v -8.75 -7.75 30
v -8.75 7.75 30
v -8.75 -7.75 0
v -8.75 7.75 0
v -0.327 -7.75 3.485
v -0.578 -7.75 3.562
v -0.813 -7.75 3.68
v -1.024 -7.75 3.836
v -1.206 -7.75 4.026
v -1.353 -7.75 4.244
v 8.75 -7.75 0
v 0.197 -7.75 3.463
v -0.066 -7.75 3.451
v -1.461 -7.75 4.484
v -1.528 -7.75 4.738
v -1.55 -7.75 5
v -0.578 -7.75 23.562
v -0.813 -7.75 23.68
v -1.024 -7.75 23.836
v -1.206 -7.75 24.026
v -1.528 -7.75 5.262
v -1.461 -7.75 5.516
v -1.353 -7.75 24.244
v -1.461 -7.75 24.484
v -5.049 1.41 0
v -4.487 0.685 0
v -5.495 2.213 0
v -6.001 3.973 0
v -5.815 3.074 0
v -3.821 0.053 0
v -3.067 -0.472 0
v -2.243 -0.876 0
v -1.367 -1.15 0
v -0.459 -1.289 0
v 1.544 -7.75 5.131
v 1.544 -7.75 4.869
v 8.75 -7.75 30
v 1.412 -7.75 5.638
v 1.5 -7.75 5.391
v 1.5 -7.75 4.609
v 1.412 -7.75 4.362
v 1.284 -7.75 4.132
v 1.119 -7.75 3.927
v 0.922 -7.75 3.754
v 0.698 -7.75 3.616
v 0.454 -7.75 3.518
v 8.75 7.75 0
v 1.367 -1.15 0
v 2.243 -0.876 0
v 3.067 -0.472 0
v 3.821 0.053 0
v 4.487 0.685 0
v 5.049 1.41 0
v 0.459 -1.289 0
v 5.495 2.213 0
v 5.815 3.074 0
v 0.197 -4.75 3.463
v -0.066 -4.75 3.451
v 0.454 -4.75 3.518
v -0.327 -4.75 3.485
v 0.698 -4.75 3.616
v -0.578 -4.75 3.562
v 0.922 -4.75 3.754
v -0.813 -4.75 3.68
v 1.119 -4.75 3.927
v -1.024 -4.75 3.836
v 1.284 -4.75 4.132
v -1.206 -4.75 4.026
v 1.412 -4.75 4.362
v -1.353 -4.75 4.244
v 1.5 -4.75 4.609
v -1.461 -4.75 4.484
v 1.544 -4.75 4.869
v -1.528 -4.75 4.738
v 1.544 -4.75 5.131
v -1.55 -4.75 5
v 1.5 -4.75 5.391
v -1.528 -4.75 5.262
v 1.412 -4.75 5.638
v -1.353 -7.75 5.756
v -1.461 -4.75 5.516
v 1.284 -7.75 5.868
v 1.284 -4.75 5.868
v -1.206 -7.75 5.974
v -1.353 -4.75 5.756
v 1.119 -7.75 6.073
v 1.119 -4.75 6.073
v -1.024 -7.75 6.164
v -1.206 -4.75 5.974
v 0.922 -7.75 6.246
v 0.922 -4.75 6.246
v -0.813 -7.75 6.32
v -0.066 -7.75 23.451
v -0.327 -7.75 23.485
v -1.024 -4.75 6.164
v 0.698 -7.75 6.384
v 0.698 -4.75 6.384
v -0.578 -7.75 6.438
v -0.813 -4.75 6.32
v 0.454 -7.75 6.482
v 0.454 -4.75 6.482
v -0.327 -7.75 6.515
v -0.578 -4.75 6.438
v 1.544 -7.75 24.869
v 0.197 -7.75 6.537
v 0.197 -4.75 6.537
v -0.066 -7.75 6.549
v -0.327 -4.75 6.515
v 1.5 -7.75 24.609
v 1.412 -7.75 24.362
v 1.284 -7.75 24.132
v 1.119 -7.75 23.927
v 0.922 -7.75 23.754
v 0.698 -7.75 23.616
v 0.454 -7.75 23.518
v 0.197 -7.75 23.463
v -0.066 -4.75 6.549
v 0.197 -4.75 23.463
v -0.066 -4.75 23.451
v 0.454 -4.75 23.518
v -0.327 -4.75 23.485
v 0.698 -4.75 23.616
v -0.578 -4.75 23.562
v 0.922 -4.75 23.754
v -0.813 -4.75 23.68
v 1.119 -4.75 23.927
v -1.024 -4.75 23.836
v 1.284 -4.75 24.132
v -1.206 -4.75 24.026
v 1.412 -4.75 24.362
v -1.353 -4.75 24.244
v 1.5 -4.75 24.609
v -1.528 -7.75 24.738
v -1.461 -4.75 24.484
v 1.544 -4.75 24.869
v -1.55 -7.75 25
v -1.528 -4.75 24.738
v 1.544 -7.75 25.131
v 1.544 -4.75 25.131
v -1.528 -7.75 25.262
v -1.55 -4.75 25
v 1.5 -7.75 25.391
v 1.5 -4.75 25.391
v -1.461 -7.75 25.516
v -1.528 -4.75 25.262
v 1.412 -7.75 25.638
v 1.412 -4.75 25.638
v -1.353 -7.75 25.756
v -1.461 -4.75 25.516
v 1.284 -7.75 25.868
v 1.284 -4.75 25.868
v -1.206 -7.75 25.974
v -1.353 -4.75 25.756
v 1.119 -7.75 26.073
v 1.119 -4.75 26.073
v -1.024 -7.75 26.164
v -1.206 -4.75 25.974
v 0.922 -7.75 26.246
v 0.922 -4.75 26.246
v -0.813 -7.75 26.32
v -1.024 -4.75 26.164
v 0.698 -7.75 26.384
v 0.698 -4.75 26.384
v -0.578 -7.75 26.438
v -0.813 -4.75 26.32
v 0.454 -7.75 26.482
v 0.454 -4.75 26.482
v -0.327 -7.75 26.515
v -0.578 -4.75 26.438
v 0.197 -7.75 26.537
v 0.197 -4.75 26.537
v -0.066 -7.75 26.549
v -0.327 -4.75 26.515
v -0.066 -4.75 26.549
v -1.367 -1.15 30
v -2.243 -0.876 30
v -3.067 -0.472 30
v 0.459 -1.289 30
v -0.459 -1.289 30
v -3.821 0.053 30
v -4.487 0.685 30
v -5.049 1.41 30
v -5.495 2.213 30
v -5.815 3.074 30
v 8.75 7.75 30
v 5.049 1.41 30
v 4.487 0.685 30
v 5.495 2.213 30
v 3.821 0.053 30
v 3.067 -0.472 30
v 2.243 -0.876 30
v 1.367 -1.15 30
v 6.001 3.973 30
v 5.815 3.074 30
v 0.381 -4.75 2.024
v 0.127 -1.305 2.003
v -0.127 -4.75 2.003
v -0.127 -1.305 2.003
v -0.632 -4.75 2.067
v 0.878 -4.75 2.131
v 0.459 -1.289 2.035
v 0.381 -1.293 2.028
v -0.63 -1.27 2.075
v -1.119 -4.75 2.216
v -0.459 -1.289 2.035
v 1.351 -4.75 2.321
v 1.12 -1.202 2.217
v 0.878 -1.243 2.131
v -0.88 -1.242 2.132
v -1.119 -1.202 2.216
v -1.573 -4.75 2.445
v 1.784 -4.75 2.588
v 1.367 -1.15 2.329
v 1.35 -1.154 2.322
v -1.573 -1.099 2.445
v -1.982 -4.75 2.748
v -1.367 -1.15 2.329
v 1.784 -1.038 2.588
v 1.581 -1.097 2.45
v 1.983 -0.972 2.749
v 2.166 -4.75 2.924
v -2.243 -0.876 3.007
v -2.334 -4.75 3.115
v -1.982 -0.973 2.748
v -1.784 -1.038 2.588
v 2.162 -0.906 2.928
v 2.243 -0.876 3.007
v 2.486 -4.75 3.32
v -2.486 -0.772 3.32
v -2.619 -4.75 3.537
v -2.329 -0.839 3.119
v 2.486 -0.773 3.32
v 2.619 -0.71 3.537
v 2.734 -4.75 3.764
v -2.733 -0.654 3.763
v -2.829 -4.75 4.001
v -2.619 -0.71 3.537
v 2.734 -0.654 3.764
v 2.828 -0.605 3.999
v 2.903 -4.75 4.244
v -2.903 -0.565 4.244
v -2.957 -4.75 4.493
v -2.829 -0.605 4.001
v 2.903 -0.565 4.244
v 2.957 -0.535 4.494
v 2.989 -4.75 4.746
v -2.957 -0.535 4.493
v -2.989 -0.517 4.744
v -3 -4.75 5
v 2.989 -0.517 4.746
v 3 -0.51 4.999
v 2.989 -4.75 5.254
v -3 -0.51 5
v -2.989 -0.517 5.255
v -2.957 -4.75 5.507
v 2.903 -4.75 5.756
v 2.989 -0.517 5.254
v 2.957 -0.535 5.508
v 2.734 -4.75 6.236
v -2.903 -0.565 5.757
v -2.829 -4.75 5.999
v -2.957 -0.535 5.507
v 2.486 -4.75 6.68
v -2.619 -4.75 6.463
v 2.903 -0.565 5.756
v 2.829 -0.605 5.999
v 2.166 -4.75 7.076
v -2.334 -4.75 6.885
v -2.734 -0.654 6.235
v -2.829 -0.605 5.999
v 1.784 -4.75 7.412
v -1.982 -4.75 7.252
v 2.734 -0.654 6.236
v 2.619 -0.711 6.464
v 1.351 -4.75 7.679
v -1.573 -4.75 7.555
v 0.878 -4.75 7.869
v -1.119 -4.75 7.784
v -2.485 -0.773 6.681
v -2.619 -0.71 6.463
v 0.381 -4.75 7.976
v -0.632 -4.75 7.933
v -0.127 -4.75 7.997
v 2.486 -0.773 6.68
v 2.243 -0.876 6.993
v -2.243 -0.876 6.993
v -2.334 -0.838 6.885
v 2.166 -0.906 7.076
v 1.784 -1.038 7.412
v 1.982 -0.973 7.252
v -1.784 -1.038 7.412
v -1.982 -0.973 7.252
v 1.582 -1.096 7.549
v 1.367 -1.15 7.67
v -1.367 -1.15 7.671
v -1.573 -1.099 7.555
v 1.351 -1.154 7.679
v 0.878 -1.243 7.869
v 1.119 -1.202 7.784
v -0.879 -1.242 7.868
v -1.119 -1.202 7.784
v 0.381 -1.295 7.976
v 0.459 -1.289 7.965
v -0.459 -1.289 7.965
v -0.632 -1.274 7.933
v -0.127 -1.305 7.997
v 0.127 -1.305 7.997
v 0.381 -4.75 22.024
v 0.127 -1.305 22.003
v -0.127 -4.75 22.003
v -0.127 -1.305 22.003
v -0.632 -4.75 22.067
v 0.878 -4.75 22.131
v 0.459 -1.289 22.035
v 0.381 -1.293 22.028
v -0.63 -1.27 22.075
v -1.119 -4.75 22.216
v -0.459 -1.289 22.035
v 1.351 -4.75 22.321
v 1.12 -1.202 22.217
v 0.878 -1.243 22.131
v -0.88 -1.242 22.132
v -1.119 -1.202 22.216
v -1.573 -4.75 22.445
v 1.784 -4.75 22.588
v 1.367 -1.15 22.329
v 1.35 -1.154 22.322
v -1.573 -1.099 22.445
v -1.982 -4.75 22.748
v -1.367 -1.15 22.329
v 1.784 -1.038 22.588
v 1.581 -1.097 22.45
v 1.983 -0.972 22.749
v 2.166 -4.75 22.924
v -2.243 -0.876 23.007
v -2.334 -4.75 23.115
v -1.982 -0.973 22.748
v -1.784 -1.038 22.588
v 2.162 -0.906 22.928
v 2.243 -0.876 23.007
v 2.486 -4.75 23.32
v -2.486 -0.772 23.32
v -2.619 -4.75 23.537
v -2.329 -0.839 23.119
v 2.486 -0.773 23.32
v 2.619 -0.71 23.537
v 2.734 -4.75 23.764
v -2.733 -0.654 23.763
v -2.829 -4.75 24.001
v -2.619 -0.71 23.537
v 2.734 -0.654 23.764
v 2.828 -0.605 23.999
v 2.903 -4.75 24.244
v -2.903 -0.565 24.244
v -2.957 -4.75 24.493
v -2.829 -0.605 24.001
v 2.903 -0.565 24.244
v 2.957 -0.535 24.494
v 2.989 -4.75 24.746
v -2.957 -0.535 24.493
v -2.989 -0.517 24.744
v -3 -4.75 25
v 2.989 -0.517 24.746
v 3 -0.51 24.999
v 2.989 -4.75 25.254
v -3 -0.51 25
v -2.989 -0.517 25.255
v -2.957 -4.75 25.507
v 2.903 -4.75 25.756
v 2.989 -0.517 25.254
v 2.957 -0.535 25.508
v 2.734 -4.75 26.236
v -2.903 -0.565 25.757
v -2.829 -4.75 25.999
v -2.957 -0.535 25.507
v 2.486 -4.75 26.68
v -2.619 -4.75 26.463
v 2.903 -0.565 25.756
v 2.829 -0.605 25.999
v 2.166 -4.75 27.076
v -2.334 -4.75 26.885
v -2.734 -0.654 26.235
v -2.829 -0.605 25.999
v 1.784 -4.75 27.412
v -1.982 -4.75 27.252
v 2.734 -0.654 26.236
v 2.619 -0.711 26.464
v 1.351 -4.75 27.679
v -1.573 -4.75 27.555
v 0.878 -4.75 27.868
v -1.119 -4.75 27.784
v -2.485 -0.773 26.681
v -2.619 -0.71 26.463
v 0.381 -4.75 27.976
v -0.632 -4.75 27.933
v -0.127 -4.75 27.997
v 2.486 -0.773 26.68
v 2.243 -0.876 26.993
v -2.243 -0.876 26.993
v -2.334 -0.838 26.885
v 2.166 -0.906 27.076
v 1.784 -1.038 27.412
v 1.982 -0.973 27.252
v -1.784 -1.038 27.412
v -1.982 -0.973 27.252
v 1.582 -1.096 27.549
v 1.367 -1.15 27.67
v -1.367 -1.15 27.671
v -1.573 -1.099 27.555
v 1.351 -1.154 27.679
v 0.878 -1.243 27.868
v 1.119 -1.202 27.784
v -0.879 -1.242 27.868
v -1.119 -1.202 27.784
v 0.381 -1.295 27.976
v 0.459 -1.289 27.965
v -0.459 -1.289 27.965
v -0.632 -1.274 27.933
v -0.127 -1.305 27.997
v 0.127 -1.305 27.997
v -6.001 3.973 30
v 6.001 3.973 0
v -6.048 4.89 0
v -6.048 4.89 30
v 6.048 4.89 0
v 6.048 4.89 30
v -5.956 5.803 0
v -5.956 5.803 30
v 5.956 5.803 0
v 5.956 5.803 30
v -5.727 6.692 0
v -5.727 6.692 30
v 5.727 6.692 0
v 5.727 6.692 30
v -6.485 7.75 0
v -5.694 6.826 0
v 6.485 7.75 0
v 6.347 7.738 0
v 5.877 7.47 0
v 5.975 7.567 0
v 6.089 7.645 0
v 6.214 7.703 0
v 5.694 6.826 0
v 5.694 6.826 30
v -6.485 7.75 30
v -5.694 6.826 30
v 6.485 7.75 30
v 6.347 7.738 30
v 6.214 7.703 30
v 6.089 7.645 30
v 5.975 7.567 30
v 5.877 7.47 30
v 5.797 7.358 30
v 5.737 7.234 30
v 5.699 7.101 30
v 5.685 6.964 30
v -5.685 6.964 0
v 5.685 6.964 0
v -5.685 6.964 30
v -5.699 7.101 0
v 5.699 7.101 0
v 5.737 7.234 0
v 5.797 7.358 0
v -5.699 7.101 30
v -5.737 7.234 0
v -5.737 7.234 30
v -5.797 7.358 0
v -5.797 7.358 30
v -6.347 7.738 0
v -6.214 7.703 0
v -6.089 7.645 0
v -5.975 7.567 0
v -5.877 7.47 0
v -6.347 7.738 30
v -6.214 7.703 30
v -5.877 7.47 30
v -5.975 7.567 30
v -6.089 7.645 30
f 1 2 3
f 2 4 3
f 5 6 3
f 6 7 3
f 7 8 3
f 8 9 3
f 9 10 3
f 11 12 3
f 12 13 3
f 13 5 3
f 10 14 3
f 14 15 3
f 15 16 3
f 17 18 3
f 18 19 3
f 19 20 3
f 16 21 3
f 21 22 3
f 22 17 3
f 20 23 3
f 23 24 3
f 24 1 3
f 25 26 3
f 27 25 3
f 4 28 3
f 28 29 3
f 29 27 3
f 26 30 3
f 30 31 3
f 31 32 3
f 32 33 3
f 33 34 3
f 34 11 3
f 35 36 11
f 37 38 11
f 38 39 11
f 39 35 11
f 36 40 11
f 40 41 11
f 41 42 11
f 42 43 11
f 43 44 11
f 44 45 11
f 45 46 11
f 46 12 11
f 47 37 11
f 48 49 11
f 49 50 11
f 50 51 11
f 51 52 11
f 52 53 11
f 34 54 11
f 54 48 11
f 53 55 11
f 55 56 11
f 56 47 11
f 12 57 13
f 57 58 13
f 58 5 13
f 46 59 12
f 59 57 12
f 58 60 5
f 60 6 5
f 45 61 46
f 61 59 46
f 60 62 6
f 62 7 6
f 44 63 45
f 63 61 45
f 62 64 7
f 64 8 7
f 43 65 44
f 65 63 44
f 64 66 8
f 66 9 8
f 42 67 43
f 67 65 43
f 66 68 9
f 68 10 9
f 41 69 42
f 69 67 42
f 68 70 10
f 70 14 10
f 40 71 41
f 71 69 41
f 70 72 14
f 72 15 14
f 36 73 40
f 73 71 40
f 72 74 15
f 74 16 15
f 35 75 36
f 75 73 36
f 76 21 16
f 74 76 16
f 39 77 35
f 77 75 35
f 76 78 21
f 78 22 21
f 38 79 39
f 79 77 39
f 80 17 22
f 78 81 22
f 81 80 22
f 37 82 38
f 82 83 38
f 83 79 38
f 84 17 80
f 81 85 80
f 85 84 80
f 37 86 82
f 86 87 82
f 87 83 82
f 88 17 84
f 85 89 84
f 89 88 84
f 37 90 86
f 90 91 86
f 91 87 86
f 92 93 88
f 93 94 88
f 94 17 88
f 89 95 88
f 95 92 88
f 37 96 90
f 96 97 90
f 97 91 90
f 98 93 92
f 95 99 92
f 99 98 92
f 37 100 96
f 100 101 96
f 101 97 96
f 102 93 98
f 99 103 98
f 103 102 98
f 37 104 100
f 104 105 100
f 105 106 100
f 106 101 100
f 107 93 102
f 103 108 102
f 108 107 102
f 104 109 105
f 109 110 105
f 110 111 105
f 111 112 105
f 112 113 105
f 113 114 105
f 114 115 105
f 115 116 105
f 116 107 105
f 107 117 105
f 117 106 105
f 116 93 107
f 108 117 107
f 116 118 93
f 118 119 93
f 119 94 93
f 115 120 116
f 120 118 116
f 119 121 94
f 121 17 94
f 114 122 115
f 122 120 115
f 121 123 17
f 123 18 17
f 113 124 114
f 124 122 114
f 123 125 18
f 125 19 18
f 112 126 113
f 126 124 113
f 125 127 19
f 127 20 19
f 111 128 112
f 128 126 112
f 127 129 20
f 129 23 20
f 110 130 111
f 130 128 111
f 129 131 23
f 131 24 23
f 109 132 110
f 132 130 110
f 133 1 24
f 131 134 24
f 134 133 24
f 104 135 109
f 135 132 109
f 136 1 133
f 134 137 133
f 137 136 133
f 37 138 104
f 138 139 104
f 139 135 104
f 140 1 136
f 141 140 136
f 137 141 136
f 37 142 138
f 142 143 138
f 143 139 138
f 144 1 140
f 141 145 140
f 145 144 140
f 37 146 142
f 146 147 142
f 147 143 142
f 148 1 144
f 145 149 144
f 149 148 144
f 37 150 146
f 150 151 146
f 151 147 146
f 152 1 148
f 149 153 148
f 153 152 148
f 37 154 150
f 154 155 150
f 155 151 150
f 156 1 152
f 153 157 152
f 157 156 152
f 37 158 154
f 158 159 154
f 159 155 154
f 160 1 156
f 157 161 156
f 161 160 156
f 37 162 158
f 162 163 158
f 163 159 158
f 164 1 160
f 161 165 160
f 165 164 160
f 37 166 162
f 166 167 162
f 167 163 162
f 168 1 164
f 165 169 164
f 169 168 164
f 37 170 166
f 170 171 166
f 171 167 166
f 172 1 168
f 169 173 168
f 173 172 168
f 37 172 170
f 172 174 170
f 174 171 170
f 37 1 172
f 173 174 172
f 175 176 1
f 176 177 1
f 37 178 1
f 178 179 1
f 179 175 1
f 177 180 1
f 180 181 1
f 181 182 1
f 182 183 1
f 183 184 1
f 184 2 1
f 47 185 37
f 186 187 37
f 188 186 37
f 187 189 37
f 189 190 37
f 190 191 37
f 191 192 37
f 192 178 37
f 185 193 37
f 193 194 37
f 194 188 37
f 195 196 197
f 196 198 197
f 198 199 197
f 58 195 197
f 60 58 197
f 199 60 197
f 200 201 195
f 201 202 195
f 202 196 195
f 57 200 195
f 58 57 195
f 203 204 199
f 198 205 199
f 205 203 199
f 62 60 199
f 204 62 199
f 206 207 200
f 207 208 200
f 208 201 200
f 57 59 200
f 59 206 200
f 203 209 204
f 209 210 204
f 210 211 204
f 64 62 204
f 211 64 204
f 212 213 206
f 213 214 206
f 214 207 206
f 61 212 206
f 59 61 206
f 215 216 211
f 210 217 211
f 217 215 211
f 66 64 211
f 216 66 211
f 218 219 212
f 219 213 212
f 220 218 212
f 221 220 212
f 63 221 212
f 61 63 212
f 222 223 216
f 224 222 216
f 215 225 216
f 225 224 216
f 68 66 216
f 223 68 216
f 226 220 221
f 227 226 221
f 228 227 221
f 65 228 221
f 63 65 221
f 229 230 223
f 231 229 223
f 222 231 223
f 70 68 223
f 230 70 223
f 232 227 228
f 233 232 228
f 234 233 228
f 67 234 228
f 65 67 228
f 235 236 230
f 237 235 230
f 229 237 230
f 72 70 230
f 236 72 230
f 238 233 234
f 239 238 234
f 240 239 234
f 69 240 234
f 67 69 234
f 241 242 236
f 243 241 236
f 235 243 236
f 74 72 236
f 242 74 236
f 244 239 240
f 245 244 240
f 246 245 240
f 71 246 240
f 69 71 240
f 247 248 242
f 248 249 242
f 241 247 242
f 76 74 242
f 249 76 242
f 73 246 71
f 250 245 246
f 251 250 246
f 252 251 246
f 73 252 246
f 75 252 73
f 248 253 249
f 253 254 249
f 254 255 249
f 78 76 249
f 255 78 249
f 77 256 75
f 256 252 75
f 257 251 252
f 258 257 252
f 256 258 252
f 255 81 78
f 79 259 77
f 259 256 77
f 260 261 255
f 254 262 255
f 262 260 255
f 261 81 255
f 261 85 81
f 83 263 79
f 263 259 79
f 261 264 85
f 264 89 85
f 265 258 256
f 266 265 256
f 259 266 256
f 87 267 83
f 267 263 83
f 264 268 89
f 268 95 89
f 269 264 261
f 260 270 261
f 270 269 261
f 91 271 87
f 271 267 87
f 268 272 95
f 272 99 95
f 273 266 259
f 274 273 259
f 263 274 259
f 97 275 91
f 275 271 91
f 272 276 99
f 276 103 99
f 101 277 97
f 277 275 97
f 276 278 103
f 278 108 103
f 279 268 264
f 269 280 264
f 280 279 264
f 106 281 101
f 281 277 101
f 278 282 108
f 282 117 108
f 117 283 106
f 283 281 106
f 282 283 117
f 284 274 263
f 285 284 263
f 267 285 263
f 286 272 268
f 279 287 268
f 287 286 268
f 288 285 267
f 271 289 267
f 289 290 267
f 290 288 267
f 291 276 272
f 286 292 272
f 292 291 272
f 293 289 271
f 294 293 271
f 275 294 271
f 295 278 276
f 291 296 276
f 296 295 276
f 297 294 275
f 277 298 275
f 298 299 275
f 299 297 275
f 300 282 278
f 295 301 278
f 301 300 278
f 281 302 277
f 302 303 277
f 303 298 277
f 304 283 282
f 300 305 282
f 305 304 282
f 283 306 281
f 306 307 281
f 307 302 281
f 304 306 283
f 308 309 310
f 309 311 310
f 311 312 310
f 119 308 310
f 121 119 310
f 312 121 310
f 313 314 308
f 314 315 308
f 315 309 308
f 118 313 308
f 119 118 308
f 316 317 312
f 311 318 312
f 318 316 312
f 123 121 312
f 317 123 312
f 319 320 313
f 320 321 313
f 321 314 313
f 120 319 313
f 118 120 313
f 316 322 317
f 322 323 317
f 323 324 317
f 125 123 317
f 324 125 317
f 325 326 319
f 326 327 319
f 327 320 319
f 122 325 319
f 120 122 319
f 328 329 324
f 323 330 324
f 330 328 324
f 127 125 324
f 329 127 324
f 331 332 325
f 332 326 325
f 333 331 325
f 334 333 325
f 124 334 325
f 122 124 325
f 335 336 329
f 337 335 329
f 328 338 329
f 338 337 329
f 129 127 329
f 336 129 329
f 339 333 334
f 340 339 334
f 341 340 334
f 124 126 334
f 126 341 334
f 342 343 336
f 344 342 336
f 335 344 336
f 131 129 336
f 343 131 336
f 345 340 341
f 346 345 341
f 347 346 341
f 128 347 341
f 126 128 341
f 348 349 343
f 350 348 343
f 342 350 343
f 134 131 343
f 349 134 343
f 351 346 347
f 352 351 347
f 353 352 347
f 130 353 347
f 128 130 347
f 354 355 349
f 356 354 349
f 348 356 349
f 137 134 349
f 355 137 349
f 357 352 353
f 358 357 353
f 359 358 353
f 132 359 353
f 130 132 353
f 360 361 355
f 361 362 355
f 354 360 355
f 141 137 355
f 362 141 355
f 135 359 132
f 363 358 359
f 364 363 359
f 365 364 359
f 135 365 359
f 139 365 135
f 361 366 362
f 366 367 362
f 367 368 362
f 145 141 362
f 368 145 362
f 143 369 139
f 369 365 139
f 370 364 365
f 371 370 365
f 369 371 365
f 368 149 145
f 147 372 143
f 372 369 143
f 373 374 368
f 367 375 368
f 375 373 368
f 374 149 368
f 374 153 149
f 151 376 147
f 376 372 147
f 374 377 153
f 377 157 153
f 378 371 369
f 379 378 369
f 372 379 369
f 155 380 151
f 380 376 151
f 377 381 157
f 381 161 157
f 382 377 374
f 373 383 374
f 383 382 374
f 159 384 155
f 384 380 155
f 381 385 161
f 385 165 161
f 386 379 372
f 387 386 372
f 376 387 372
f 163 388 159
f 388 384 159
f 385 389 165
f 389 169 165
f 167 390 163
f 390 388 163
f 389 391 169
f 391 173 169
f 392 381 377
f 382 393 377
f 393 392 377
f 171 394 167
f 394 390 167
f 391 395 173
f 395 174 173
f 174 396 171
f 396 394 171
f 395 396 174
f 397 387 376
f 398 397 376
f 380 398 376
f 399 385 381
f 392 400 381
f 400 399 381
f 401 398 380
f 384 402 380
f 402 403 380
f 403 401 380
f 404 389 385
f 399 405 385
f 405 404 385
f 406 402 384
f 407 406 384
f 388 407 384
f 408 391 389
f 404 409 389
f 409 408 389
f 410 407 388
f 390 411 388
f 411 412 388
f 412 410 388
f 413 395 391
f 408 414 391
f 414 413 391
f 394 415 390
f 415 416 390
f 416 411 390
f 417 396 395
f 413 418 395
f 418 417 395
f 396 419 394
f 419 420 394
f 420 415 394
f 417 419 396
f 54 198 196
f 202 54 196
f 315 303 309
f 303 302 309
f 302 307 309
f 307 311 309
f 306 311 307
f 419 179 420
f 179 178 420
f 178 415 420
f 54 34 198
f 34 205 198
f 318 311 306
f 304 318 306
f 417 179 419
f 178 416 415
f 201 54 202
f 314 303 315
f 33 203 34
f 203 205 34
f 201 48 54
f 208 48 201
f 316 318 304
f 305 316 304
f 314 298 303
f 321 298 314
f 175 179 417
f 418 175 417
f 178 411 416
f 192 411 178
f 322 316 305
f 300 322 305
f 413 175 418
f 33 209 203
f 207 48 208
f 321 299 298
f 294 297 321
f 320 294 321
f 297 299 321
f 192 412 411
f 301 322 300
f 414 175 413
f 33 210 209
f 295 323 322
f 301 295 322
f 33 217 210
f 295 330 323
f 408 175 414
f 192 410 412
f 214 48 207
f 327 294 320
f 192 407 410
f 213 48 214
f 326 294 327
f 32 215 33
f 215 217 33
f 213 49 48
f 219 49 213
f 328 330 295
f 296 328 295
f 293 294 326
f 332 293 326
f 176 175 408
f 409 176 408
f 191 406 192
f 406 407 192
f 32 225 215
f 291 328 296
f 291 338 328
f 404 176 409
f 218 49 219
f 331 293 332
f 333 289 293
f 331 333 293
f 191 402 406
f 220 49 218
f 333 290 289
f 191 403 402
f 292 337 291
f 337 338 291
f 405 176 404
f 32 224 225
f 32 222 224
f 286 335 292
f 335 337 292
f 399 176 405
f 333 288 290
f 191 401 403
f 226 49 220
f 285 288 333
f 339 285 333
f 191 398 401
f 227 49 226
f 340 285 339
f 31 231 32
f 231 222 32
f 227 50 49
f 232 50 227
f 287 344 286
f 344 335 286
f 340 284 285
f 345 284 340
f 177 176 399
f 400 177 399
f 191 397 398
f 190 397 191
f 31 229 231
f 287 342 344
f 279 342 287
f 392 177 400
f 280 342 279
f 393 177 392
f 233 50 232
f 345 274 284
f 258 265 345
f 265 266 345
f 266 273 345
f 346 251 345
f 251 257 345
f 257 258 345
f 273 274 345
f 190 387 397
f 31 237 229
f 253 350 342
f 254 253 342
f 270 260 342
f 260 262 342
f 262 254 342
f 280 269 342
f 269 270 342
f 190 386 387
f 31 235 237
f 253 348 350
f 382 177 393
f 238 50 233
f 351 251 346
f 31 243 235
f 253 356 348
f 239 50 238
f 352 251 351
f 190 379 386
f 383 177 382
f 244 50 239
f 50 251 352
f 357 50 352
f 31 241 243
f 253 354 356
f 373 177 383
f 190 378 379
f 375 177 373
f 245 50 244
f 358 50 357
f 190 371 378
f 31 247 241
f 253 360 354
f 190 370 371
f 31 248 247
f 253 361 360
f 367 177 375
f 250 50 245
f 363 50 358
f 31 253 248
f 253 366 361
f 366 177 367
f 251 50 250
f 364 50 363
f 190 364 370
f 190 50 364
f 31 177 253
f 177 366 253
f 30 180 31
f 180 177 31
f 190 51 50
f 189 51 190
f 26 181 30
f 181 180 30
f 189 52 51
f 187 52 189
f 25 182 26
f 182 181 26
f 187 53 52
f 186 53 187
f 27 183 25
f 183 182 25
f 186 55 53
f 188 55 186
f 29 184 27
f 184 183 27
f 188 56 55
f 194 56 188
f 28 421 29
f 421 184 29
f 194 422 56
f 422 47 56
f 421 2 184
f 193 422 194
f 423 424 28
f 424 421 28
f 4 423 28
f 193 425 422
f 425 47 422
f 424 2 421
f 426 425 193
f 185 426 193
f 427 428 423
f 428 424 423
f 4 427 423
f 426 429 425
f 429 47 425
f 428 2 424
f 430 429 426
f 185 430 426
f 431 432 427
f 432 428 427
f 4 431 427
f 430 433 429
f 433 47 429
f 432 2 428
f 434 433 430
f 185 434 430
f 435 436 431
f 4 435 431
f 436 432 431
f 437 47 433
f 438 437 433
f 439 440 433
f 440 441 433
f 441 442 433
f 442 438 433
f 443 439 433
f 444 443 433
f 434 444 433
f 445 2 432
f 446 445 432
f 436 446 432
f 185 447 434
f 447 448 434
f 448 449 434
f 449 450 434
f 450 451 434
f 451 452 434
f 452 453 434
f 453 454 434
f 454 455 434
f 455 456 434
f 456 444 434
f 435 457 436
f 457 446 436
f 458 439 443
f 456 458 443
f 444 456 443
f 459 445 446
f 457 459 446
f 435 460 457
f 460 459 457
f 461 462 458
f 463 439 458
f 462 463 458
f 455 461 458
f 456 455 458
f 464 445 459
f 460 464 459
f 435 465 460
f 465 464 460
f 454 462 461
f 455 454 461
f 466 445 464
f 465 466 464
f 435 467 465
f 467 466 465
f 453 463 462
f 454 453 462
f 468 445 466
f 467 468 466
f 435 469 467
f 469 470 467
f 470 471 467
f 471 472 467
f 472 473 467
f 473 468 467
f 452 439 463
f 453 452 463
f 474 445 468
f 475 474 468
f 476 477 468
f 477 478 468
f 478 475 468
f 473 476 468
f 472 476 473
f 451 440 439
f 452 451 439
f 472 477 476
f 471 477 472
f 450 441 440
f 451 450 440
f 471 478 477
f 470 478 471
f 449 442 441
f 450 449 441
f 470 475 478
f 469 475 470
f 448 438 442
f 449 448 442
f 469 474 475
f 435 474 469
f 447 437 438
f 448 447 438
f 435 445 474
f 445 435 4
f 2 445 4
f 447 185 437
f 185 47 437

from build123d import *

# Parameters (mm, degrees)
BOSS_EXTRUDE1_DEPTH = 30
FILLET1_R           = 0.8
SKETCH3_R           = 3
CUT_EXTRUDE1_DEPTH  = 12.5
SKETCH4_R           = 1.55
CUT_EXTRUDE2_DEPTH  = 35.882839707


with BuildPart() as part:
    # Sketch1 → Boss-Extrude1 (new body)
    with BuildSketch(Plane.XY):
        with BuildLine():
            Line((-5.25, 7.75), (-8.75, 7.75))
            Line((-8.75, 7.75), (-8.75, -7.75))
            Line((-8.75, -7.75), (8.75, -7.75))
            Line((8.75, -7.75), (8.75, 7.75))
            Line((8.75, 7.75), (5.25, 7.75))
            ThreePointArc((5.25, 7.75), (0, -1.306659276), (-5.25, 7.75))
        make_face()
    extrude(amount=BOSS_EXTRUDE1_DEPTH)

    # Fillet1
    fillet1_edges = [part.edges().sort_by_distance(p)[0] for p in [
        (-5.25, 7.75, 15),
        (5.25, 7.75, 15),
    ]]
    fillet(fillet1_edges, radius=FILLET1_R)

    # Sketch3 → Cut-Extrude1 (cut)
    with BuildSketch(Plane(origin=(0, 7.75, 0), x_dir=(1, 0, 0), z_dir=(0, 1, 0))):
        with Locations(Location((0, -5, 0), (0, 0, 180))):
            Circle(SKETCH3_R)
        with Locations(Location((0, -25, 0), (0, 0, 180))):
            Circle(SKETCH3_R)
    extrude(amount=-CUT_EXTRUDE1_DEPTH, mode=Mode.SUBTRACT)

    # Sketch4 → Cut-Extrude2 (cut, through all)
    with BuildSketch(Plane(origin=(0, 7.75, 0), x_dir=(1, 0, 0), z_dir=(0, 1, 0))):
        with Locations(Location((0, -5, 0), (0, 0, 180))):
            Circle(SKETCH4_R)
        with Locations(Location((0, -25, 0), (0, 0, 180))):
            Circle(SKETCH4_R)
    extrude(amount=-CUT_EXTRUDE2_DEPTH, mode=Mode.SUBTRACT)


solid = part.part
